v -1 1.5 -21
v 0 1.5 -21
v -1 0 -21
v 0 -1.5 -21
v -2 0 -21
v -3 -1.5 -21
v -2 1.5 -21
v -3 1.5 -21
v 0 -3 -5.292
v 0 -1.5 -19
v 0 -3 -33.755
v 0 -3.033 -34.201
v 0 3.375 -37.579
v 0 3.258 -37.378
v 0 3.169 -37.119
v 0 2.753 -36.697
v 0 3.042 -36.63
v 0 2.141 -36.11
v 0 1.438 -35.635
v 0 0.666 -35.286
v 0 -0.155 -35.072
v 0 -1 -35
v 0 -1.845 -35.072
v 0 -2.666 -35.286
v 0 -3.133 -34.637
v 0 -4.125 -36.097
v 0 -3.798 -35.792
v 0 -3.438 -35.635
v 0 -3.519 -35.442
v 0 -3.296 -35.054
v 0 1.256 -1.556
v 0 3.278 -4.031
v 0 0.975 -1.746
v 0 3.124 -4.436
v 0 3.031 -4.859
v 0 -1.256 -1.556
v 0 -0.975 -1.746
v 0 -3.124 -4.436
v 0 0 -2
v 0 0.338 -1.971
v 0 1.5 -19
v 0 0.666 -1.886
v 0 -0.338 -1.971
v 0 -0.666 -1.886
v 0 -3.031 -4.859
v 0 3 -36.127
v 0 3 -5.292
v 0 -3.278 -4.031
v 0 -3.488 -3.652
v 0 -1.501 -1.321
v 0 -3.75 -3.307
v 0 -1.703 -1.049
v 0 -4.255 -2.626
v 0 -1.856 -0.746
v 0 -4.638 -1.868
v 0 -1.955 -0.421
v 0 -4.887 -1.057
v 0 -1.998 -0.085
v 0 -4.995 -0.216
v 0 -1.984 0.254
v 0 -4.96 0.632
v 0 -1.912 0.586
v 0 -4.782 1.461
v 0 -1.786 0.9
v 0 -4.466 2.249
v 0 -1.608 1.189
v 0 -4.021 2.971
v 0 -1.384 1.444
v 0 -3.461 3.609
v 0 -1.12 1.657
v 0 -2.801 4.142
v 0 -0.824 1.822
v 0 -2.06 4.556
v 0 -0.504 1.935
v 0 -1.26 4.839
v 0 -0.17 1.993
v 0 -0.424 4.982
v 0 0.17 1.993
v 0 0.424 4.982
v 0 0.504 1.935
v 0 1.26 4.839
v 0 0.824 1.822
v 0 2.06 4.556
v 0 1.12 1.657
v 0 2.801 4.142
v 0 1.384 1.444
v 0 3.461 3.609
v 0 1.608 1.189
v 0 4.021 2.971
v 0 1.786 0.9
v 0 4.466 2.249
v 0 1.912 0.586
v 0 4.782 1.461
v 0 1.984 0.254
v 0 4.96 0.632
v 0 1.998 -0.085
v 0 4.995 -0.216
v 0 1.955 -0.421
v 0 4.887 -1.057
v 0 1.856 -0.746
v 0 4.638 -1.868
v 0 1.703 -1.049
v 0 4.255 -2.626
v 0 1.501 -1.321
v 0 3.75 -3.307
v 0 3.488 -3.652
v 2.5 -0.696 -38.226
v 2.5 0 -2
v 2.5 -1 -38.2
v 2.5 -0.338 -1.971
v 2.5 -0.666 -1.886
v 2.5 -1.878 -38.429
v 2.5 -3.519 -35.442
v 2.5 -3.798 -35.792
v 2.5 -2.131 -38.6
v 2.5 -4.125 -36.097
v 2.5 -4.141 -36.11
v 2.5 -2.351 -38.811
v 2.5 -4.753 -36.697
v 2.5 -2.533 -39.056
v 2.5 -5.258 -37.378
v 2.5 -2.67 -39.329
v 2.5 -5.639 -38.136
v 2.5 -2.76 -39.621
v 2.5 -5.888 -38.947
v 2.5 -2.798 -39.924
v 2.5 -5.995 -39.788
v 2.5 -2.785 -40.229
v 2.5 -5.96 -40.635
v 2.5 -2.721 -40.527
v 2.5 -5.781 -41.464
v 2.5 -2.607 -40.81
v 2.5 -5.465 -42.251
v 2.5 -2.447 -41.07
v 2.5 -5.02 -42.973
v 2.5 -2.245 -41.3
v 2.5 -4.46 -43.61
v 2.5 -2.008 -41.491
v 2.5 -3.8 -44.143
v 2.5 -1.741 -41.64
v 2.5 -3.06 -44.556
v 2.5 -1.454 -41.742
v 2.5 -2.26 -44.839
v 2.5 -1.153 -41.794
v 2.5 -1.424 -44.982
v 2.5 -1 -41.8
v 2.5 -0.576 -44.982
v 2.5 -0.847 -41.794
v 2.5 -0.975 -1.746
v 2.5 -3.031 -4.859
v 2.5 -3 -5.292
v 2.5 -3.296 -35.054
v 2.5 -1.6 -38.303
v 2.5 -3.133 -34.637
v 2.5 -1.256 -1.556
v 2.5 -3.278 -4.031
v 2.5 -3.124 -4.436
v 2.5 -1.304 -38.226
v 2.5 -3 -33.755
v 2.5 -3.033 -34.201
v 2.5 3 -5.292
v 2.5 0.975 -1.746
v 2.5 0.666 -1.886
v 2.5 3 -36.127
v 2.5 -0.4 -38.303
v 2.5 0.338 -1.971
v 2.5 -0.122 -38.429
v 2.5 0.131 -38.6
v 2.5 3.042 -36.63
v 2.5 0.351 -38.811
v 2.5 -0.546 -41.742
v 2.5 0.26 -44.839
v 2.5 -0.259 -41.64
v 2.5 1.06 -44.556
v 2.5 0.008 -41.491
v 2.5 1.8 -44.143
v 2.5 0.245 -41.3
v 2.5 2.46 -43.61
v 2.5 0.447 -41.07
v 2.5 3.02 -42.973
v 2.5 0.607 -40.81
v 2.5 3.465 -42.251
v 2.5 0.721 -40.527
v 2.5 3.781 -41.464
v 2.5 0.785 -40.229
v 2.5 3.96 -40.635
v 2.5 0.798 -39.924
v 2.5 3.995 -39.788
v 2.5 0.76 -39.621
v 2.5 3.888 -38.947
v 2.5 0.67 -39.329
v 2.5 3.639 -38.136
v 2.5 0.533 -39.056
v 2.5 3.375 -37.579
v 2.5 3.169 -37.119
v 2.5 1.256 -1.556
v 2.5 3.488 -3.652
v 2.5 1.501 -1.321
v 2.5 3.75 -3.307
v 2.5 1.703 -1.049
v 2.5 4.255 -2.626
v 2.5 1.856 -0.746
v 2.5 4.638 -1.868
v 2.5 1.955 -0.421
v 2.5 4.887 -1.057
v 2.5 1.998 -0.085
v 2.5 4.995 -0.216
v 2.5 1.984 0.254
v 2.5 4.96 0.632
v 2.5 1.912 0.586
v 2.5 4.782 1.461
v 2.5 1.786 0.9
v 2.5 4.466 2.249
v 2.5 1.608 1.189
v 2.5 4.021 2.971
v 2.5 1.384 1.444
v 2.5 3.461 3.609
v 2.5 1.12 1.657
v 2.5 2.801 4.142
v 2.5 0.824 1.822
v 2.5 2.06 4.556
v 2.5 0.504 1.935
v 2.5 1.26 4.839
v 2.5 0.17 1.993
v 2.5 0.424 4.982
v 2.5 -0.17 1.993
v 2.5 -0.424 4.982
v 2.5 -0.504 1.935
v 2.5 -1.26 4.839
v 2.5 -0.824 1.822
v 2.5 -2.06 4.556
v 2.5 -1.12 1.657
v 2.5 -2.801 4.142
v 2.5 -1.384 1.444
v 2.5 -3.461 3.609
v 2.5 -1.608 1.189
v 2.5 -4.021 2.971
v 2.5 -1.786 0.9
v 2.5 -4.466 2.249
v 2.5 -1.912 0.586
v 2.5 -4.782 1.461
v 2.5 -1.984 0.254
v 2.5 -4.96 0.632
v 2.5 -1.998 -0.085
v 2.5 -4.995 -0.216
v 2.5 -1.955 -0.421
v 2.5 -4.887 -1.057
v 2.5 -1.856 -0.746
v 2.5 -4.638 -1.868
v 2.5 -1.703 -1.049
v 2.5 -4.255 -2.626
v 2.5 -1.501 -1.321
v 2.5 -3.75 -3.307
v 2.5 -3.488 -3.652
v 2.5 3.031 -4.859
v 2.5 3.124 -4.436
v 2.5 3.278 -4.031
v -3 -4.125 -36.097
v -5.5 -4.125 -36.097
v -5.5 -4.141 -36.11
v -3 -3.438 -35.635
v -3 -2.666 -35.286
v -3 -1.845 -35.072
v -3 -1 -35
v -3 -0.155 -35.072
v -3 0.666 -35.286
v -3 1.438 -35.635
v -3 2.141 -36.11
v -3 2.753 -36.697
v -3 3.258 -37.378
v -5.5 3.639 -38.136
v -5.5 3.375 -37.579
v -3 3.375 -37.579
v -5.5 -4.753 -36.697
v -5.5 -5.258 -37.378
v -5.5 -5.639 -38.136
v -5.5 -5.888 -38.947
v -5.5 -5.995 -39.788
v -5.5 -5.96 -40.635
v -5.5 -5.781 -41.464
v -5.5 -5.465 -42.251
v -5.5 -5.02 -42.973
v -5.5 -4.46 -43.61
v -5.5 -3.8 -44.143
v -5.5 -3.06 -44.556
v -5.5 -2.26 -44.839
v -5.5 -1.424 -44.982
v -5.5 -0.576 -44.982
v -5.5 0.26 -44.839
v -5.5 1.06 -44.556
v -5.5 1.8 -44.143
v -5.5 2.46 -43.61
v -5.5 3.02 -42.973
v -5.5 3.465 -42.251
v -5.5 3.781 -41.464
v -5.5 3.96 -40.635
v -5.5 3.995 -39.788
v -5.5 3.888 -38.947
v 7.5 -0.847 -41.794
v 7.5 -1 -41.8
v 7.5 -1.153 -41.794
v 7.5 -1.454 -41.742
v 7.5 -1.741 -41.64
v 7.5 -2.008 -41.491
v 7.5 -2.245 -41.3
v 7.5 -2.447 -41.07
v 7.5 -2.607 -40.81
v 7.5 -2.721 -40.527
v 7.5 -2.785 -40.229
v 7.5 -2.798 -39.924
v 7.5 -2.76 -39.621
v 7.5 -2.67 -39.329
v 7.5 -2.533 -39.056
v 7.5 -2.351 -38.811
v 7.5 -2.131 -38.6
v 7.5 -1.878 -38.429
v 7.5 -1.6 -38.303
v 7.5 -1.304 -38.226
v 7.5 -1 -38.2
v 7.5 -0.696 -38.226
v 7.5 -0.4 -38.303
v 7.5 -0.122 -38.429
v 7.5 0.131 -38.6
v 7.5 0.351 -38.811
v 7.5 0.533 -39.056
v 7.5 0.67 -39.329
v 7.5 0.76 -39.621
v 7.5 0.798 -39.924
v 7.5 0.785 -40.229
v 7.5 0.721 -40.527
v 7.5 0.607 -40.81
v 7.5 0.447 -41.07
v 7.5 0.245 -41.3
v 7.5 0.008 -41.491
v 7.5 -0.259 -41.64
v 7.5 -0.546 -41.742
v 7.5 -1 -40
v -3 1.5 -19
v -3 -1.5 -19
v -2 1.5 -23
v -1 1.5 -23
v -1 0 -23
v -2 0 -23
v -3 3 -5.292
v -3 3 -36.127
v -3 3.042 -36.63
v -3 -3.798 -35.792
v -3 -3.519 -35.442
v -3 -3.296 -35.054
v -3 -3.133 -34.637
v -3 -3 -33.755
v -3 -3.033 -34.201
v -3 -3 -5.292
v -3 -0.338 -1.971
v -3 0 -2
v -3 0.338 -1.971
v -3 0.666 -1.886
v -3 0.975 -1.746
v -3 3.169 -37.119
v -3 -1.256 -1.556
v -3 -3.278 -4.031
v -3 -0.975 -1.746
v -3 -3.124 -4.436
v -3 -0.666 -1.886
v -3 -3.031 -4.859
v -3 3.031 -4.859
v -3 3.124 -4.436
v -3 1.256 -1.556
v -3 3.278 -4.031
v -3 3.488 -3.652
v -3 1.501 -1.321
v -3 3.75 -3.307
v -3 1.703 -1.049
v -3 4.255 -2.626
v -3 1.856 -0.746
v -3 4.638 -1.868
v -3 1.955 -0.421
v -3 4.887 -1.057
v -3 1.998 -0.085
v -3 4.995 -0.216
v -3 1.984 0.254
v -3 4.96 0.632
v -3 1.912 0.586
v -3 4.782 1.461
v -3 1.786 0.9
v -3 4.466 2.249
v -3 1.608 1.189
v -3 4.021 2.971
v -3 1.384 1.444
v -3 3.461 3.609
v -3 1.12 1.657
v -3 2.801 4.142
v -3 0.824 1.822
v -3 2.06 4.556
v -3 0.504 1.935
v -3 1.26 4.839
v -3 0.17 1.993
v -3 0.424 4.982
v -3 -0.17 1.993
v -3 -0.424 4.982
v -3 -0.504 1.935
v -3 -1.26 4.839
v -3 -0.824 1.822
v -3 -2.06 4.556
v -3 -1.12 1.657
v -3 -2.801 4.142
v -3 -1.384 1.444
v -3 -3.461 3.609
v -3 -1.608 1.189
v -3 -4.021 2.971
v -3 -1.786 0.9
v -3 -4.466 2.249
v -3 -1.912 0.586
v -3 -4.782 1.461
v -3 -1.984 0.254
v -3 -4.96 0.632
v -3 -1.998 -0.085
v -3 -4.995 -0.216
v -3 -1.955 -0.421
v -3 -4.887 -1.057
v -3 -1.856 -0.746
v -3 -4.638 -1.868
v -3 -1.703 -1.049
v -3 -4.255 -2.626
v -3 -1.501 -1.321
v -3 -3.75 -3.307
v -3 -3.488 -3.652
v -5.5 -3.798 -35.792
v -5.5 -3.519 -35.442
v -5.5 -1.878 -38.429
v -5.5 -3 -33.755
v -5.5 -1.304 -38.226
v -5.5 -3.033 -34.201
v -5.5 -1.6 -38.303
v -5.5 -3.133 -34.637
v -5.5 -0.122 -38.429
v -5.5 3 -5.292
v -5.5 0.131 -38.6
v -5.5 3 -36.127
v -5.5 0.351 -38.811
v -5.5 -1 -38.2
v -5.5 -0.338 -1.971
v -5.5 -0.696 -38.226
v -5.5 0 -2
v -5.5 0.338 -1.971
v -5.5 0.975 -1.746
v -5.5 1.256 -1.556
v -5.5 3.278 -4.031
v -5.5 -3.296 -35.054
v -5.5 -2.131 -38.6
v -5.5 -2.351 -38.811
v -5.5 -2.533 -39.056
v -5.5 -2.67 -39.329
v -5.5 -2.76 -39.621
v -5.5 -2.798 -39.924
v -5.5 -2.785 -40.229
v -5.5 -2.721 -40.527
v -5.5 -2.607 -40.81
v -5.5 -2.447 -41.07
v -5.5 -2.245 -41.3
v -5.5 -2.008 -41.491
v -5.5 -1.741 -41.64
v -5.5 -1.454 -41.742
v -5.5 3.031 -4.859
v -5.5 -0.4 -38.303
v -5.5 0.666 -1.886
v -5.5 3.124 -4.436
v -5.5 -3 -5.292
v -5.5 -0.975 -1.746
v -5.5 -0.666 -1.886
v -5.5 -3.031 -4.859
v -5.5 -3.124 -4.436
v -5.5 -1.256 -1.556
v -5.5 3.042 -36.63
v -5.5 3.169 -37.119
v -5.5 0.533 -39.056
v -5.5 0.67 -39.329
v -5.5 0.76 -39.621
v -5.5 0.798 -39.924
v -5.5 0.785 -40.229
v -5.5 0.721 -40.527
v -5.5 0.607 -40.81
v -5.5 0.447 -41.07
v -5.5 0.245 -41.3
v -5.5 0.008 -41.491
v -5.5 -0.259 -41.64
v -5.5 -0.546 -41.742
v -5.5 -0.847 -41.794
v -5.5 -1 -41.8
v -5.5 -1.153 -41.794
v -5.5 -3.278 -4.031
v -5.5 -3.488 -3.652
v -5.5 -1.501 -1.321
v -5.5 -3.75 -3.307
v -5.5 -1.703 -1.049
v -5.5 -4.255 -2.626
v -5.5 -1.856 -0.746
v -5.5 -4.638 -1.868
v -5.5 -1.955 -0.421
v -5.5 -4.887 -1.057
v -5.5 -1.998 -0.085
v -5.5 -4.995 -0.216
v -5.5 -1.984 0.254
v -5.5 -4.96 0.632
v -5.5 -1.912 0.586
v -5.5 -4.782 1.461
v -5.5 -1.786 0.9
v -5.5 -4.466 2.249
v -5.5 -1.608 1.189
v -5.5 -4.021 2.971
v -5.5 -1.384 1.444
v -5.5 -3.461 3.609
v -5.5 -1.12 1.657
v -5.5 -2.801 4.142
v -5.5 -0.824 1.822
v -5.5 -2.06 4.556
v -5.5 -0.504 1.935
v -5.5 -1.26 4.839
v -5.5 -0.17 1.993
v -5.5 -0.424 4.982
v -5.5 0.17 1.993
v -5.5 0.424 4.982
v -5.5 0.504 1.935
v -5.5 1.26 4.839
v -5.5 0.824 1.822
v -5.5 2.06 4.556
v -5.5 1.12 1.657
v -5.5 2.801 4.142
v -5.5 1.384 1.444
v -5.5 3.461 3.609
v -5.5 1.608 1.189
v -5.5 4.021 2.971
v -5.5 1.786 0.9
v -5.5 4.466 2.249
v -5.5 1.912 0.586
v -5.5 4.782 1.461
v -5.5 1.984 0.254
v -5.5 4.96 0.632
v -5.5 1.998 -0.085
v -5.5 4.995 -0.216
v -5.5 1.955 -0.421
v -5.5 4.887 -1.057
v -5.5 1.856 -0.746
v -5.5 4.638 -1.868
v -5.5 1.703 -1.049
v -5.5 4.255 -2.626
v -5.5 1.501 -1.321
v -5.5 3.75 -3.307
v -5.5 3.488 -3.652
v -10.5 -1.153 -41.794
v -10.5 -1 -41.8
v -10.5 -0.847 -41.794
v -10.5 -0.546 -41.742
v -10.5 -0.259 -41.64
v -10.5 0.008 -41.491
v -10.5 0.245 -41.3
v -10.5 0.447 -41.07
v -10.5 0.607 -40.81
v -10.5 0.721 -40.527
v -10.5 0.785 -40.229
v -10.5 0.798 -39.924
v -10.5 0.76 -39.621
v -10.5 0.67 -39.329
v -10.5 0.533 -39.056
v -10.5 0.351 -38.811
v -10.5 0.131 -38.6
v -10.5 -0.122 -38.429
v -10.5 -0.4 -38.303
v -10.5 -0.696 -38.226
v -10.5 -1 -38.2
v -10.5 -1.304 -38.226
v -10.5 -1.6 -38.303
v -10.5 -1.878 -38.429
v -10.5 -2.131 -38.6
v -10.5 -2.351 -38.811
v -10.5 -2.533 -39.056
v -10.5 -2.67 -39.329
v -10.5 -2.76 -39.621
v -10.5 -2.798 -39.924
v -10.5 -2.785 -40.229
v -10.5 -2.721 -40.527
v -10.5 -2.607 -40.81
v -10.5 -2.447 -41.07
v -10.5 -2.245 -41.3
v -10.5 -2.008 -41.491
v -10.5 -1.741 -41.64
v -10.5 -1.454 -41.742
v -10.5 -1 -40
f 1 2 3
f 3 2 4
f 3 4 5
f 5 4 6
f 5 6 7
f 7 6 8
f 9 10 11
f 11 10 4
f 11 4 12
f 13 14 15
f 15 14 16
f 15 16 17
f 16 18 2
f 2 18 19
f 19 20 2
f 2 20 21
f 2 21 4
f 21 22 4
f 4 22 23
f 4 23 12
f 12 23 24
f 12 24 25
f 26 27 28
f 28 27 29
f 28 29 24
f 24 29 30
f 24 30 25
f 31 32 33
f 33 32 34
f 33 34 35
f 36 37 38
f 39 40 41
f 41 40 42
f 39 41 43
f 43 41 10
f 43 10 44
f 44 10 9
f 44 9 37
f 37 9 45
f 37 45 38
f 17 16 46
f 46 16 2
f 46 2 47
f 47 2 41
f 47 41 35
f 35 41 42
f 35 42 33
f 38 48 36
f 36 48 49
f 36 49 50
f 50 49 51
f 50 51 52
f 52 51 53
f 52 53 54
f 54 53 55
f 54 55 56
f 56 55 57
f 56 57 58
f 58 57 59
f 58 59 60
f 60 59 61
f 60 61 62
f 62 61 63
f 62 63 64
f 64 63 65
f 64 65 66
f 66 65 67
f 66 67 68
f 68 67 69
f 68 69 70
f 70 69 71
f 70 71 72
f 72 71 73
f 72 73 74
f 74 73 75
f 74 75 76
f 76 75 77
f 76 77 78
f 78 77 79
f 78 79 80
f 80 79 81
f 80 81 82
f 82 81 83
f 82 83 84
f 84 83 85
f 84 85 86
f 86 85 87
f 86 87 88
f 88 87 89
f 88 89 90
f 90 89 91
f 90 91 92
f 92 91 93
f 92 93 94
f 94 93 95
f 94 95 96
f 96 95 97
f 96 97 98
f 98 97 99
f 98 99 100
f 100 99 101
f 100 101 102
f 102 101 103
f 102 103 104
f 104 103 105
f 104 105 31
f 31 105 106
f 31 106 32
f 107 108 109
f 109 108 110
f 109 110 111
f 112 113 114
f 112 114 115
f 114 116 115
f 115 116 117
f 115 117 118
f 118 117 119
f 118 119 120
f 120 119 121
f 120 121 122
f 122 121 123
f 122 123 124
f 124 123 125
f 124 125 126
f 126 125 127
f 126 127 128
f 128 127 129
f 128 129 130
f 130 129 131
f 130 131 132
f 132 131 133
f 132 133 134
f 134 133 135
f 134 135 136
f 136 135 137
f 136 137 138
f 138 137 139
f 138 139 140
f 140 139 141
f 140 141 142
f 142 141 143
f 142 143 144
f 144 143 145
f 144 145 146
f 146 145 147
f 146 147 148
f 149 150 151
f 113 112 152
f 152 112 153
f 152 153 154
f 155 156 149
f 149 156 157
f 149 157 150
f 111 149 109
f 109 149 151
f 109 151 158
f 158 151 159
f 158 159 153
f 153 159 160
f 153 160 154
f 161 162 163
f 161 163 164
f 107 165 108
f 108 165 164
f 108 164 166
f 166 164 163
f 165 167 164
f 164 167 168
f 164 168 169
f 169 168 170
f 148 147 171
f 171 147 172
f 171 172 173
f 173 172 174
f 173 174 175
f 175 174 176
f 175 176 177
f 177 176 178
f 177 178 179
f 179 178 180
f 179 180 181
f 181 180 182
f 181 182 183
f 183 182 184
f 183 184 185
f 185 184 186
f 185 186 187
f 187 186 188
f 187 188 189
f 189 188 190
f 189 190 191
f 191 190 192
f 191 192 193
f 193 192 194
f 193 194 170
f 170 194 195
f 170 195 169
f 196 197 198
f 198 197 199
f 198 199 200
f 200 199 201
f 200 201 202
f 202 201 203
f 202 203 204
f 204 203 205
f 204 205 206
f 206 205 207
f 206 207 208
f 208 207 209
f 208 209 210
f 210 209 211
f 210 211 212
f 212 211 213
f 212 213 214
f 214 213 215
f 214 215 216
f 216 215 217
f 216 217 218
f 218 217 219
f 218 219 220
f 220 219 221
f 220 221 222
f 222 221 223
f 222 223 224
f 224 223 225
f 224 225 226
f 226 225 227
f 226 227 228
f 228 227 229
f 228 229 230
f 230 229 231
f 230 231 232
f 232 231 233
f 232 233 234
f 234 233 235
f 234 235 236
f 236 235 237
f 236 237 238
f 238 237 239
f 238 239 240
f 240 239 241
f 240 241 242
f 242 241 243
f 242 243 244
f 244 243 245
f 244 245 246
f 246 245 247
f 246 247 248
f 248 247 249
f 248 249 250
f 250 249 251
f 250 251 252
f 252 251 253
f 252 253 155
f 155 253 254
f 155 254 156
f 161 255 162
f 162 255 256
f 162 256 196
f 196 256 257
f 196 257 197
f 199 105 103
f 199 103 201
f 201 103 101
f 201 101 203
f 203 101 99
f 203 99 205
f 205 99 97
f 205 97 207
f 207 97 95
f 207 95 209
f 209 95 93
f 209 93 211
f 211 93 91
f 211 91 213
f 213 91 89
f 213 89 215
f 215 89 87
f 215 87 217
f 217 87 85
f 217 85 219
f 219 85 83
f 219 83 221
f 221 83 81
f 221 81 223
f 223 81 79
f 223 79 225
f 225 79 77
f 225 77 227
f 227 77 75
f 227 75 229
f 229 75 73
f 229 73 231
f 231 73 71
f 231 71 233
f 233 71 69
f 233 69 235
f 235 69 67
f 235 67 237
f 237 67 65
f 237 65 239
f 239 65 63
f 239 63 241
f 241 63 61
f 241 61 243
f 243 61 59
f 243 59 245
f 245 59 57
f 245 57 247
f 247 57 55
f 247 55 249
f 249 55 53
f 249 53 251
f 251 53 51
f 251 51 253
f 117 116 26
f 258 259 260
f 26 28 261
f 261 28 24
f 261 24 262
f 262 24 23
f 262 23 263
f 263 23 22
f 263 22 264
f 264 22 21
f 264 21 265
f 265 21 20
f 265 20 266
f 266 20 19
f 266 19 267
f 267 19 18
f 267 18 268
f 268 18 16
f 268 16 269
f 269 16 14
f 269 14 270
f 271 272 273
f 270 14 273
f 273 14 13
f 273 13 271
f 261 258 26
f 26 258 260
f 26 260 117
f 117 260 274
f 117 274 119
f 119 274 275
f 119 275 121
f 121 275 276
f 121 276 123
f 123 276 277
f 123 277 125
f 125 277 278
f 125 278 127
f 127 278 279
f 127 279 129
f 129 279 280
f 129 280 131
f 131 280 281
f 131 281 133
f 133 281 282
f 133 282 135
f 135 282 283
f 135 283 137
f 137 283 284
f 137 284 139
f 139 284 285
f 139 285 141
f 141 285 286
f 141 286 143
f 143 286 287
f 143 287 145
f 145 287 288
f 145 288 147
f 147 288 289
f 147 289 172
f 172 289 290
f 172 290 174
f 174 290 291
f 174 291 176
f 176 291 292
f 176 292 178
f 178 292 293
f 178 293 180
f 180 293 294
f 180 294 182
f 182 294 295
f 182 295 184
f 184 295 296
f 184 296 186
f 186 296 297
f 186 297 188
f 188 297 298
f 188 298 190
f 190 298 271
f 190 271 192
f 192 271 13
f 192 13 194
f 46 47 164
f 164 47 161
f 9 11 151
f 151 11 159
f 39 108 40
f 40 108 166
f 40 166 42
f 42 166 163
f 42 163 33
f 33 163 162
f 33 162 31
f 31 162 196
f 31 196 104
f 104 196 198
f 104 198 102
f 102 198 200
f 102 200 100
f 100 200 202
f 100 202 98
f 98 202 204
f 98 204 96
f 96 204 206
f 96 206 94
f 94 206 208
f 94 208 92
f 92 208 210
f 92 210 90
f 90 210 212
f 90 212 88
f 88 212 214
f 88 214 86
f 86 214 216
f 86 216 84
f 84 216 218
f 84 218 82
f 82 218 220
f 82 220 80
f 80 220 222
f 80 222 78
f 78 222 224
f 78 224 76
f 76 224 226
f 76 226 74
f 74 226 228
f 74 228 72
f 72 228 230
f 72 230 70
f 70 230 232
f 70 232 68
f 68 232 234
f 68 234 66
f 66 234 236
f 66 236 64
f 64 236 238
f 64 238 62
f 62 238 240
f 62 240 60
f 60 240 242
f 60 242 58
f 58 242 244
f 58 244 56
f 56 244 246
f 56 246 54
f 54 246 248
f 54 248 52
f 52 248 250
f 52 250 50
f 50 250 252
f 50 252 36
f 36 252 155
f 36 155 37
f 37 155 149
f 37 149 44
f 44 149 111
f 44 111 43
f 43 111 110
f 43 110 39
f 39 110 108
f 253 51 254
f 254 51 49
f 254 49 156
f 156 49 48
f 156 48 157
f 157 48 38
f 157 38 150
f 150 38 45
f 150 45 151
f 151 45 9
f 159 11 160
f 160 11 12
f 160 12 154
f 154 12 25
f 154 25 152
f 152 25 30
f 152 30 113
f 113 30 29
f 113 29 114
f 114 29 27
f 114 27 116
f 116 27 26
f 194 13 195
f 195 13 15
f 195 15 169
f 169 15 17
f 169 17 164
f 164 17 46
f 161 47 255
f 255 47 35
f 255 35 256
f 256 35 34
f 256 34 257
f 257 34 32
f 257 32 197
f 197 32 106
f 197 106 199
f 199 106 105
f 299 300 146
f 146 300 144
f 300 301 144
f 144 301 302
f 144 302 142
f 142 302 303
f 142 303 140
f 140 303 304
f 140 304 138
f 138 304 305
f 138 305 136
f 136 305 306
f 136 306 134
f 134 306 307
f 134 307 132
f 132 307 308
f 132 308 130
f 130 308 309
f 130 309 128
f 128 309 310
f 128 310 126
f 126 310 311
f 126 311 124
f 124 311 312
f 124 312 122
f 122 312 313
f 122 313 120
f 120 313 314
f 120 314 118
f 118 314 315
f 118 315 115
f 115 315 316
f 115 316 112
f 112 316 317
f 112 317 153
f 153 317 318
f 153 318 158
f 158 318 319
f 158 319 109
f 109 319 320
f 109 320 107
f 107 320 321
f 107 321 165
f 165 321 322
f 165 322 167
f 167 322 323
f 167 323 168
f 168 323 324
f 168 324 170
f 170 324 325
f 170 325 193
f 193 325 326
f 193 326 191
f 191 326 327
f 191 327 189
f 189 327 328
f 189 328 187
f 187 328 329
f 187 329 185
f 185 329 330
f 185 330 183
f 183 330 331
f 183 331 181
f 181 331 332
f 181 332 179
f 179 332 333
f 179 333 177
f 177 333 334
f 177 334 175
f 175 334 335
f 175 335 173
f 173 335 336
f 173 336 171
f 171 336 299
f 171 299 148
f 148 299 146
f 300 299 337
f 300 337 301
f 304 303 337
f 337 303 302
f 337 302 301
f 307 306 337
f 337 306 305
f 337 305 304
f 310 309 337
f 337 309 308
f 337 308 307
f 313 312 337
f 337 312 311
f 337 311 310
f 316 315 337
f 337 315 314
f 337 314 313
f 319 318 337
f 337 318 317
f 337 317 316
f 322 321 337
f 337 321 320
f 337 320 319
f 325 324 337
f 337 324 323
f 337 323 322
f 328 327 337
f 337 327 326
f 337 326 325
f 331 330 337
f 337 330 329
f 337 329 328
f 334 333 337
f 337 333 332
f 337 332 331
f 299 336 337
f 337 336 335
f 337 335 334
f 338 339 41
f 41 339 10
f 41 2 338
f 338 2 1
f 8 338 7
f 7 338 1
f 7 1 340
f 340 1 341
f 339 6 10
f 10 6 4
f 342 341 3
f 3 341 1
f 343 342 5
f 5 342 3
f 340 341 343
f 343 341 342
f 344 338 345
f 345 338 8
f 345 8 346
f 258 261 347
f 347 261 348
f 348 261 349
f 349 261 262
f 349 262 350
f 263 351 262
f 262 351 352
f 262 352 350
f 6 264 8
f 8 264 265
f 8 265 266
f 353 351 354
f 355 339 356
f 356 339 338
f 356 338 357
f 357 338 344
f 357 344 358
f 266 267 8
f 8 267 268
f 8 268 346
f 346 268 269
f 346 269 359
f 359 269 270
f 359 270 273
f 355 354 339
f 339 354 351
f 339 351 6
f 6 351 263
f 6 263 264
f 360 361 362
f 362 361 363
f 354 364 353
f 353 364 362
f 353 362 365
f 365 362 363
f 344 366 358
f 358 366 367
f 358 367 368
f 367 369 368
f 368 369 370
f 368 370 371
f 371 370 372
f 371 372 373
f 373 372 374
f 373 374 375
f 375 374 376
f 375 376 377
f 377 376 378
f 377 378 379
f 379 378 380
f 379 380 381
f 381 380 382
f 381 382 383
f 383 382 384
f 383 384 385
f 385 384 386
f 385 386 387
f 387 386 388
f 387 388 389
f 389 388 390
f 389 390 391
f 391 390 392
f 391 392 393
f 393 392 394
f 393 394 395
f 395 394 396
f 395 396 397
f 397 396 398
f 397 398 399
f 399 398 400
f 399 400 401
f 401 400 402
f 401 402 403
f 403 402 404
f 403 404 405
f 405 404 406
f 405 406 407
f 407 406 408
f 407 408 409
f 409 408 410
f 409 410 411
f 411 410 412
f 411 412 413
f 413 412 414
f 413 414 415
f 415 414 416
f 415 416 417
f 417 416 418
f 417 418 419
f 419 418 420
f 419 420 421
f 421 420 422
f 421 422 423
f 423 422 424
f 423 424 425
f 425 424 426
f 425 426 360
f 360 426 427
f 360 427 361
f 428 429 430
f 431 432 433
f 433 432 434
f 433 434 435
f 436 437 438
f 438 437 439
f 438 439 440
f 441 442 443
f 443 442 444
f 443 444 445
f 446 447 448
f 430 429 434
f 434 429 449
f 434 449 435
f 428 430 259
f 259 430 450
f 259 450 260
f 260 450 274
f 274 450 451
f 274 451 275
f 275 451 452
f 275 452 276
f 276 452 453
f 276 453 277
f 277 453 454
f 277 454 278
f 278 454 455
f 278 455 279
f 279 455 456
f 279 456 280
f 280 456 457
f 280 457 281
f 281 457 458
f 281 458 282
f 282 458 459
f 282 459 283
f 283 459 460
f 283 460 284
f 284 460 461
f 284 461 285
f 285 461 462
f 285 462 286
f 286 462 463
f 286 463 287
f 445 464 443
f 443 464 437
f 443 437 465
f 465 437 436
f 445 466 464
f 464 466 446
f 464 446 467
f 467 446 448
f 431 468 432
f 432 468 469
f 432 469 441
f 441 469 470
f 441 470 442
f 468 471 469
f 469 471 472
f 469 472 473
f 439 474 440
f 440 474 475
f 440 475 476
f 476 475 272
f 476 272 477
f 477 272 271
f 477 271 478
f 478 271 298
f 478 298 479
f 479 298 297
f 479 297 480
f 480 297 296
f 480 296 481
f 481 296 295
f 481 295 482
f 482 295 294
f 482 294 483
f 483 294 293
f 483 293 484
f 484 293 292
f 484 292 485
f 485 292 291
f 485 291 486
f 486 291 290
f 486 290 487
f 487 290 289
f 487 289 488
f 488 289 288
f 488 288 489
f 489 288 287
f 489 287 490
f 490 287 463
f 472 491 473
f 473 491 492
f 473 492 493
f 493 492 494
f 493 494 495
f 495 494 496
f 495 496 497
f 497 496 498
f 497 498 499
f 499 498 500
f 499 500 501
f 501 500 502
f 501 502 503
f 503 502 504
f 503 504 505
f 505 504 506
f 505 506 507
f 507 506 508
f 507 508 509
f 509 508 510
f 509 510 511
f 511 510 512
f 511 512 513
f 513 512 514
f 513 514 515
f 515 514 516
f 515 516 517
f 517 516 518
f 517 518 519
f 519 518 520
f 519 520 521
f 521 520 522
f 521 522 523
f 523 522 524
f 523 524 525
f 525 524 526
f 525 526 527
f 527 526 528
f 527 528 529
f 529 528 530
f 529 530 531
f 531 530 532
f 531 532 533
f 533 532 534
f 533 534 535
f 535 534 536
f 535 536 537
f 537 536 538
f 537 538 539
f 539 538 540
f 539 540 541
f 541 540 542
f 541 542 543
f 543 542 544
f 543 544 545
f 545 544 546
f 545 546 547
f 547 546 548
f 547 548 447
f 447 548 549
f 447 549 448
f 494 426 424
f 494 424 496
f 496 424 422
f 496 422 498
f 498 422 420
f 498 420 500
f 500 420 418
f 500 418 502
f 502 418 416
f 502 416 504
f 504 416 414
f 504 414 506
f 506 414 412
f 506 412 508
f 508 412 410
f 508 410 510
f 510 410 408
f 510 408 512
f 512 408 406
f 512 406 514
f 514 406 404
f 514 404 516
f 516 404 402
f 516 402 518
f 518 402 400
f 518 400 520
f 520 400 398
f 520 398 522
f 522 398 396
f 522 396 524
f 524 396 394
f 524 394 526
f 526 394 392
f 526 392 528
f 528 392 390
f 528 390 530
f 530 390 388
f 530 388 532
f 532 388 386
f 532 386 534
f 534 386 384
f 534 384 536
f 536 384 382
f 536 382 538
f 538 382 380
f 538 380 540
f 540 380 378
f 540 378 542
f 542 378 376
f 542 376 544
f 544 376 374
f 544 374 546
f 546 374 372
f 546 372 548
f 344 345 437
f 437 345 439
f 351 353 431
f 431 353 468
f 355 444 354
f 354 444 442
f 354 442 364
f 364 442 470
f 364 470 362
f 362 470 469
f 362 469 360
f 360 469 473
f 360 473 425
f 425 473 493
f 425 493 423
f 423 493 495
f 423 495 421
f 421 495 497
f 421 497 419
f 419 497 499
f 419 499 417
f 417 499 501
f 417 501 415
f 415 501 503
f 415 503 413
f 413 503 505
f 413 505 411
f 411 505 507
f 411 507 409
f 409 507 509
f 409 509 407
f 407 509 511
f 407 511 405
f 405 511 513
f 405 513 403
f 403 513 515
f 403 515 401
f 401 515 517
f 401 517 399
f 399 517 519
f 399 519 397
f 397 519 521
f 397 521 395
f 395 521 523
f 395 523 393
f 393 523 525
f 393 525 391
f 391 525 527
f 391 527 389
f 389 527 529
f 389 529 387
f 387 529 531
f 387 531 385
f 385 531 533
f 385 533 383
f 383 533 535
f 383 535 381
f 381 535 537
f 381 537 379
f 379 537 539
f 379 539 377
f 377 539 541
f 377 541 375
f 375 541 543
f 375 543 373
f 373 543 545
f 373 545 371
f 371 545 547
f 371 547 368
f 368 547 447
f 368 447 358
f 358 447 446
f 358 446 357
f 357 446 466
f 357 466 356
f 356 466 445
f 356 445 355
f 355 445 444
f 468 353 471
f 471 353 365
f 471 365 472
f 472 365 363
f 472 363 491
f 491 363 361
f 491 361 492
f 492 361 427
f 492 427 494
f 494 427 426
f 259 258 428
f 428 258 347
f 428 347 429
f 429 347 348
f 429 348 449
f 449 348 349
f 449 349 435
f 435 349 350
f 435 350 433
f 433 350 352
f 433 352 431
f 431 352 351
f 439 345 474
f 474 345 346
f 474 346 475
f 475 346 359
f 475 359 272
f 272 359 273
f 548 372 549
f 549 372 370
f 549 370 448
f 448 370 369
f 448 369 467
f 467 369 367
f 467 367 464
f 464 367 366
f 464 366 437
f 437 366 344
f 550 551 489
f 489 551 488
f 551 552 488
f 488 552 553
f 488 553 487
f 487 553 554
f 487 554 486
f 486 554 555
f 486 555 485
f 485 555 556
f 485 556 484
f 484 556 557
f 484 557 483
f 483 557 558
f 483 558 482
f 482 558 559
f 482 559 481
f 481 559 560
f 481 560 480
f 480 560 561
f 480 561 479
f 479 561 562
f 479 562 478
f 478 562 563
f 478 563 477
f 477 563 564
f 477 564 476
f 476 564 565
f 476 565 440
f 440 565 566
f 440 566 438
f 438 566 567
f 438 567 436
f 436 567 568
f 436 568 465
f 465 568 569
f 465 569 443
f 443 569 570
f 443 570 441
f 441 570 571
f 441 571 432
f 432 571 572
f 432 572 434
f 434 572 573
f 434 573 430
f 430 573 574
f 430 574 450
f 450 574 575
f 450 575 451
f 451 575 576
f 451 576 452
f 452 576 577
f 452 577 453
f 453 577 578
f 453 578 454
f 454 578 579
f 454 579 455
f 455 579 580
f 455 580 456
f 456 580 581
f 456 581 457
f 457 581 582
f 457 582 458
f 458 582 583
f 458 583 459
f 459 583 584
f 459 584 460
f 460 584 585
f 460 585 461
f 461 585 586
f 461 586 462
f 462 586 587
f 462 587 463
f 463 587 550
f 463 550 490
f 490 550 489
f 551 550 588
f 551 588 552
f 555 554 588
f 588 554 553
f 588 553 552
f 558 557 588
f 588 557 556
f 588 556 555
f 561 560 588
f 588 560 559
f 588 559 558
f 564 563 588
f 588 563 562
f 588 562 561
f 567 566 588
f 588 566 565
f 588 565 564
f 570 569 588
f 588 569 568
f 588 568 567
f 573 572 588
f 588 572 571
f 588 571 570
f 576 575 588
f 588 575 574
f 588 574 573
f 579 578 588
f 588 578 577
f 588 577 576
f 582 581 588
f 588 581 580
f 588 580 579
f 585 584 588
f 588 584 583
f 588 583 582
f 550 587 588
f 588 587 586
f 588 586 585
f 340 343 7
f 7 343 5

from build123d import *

# Parameters (mm, degrees)
SKETCH_1_R                  = 5
SKETCH_1_W                  = 40
SKETCH_1_H                  = 6
EXTRUDE_1_DEPTH             = 2.5
CUT_EXTRUDE_2_DEPTH         = 46.467021015
CUT_EXTRUDE_2_DEPTH_BACK    = 46.467021015
SKETCH_1_3_R                = 2
FILLET_1_R                  = 3
EXTRUDE_START               = -1.5
SKETCH_1_4_R                = 5
SKETCH_1_4_R_2              = 2
EXTRUDE_2_DEPTH             = 1.5
SKETCH_2_R                  = 1.8
EXTRUDE_4_DEPTH             = 5
EXTRUDE_5_REACH             = 48.014
SKETCH_1_5_R                = 2
EXTRUDE_5_DIRECTION_2_REACH = 48.014
SKETCH_3_W                  = 2
SKETCH_3_H                  = 3
EXTRUDE_8_DEPTH             = 1.5
SKETCH_4_W                  = 0.5
SKETCH_4_H                  = 1.5
EXTRUDE_9_DEPTH             = 2


with BuildPart() as part:
    # 草图1 → 凸台-拉伸1 (new body)
    with BuildSketch(Plane(origin=(0, 0, 0), x_dir=(0, 0, -1), z_dir=(1, 0, 0))):
        Circle(SKETCH_1_R)
        with Locations((40, -1)):
            Circle(SKETCH_1_R)
        with Locations((20, 0)):
            Rectangle(SKETCH_1_W, SKETCH_1_H)
    extrude(amount=EXTRUDE_1_DEPTH)

    # 草图1<3> → 切除-拉伸2 (cut, two sides: drawn at the far end of the back side and taken through both)
    with BuildSketch(Plane(origin=(0, 0, 0), x_dir=(0, 0, -1), z_dir=(1, 0, 0)).offset(-CUT_EXTRUDE_2_DEPTH_BACK)):
        Circle(SKETCH_1_3_R)
        with Locations((40, -1)):
            Circle(SKETCH_1_3_R)
    extrude(amount=CUT_EXTRUDE_2_DEPTH + CUT_EXTRUDE_2_DEPTH_BACK, mode=Mode.SUBTRACT)

    # 圆角1
    fillet_1_edges = [part.edges().sort_by_distance(p)[0] for p in [
        (1.25, -3, -4),
        (1.25, -3, -35.417424305),
        (1.25, 3, -37),
        (1.25, 3, -4),
    ]]
    fillet(fillet_1_edges, radius=FILLET_1_R)

    # 草图1<4> → 凸台-拉伸2 (add)
    with BuildSketch(Plane(origin=(0, 0, 0), x_dir=(0, 0, -1), z_dir=(1, 0, 0)).offset(EXTRUDE_START)):
        with Locations((40, -1)):
            Circle(SKETCH_1_4_R)
        with Locations((40, -1)):
            Circle(SKETCH_1_4_R_2, mode=Mode.SUBTRACT)
    extrude(amount=EXTRUDE_2_DEPTH)

    # 凸台-拉伸5: up to this face of the body (flat: up to its plane)
    extrude_5_end = Plane(part.part.faces().sort_by_distance((2.5, -0.197791912, -20.041492076))[0])
    # 草图1<5> → 凸台-拉伸5 (add, up to the picked face)
    with BuildSketch(Plane(origin=(0, 0, 0), x_dir=(0, 0, -1), z_dir=(1, 0, 0)), mode=Mode.PRIVATE) as extrude_5_sk1:
        with Locations((40, -1)):
            Circle(SKETCH_1_5_R)
    extrude_5_tool1 = split(extrude(extrude_5_sk1.sketch, amount=EXTRUDE_5_REACH, mode=Mode.PRIVATE), bisect_by=extrude_5_end, keep=Keep.BOTH, mode=Mode.PRIVATE)


with BuildPart() as body_2:
    # 草图2 → 凸台-拉伸4 (new body)
    with BuildSketch(Plane(origin=(2.5, 0, 0), x_dir=(0, 0, -1), z_dir=(1, 0, 0))):
        with Locations((40, -1)):
            Circle(SKETCH_2_R)
    extrude(amount=EXTRUDE_4_DEPTH)


with BuildPart() as part_1:
    add(part.part)

    add(body_2.part)  # 凸台-拉伸5 merges body 2
    add(extrude_5_tool1.solids().sort_by(Axis((0, -1, -40), (1, 0, 0)))[0])

    # 凸台-拉伸5 direction 2: up to this face of the body (flat: up to its plane)
    extrude_5_direction_2_end = Plane(part_1.part.faces().sort_by_distance((-1.5, -1, -35.141421356))[0])
    # 草图1<5> → 凸台-拉伸5 direction 2 (add, up to the picked face)
    with BuildSketch(Plane(origin=(0, 0, 0), x_dir=(0, 0, -1), z_dir=(1, 0, 0)), mode=Mode.PRIVATE) as extrude_5_direction_2_sk1:
        with Locations((40, -1)):
            Circle(SKETCH_1_5_R)
    extrude_5_direction_2_tool1 = split(extrude(extrude_5_direction_2_sk1.sketch, amount=-EXTRUDE_5_DIRECTION_2_REACH, mode=Mode.PRIVATE), bisect_by=extrude_5_direction_2_end, keep=Keep.BOTH, mode=Mode.PRIVATE)
    add(extrude_5_direction_2_tool1.solids().sort_by(Axis((0, -1, -40), (-1, 0, 0)))[0])

    # 草图3 → 凸台-拉伸8 (add)
    with BuildSketch(Plane.ZY):
        with Locations((-20, 0)):
            Rectangle(SKETCH_3_W, SKETCH_3_H)
    extrude(amount=EXTRUDE_8_DEPTH)

    # 草图4 → 凸台-拉伸9 (add)
    with BuildSketch(Plane(origin=(0, 0, -21), x_dir=(-1, 0, 0), z_dir=(0, 0, -1))):
        with Locations((1.25, 0.75)):
            Rectangle(SKETCH_4_W, SKETCH_4_H)
    extrude(amount=EXTRUDE_9_DEPTH)

    # 镜向3: part across plane


with BuildPart() as part_2:
    add(part_1.part)
    add(part_1.part.mirror(Plane.ZY.offset(1.5)))


solid = part_2.part
